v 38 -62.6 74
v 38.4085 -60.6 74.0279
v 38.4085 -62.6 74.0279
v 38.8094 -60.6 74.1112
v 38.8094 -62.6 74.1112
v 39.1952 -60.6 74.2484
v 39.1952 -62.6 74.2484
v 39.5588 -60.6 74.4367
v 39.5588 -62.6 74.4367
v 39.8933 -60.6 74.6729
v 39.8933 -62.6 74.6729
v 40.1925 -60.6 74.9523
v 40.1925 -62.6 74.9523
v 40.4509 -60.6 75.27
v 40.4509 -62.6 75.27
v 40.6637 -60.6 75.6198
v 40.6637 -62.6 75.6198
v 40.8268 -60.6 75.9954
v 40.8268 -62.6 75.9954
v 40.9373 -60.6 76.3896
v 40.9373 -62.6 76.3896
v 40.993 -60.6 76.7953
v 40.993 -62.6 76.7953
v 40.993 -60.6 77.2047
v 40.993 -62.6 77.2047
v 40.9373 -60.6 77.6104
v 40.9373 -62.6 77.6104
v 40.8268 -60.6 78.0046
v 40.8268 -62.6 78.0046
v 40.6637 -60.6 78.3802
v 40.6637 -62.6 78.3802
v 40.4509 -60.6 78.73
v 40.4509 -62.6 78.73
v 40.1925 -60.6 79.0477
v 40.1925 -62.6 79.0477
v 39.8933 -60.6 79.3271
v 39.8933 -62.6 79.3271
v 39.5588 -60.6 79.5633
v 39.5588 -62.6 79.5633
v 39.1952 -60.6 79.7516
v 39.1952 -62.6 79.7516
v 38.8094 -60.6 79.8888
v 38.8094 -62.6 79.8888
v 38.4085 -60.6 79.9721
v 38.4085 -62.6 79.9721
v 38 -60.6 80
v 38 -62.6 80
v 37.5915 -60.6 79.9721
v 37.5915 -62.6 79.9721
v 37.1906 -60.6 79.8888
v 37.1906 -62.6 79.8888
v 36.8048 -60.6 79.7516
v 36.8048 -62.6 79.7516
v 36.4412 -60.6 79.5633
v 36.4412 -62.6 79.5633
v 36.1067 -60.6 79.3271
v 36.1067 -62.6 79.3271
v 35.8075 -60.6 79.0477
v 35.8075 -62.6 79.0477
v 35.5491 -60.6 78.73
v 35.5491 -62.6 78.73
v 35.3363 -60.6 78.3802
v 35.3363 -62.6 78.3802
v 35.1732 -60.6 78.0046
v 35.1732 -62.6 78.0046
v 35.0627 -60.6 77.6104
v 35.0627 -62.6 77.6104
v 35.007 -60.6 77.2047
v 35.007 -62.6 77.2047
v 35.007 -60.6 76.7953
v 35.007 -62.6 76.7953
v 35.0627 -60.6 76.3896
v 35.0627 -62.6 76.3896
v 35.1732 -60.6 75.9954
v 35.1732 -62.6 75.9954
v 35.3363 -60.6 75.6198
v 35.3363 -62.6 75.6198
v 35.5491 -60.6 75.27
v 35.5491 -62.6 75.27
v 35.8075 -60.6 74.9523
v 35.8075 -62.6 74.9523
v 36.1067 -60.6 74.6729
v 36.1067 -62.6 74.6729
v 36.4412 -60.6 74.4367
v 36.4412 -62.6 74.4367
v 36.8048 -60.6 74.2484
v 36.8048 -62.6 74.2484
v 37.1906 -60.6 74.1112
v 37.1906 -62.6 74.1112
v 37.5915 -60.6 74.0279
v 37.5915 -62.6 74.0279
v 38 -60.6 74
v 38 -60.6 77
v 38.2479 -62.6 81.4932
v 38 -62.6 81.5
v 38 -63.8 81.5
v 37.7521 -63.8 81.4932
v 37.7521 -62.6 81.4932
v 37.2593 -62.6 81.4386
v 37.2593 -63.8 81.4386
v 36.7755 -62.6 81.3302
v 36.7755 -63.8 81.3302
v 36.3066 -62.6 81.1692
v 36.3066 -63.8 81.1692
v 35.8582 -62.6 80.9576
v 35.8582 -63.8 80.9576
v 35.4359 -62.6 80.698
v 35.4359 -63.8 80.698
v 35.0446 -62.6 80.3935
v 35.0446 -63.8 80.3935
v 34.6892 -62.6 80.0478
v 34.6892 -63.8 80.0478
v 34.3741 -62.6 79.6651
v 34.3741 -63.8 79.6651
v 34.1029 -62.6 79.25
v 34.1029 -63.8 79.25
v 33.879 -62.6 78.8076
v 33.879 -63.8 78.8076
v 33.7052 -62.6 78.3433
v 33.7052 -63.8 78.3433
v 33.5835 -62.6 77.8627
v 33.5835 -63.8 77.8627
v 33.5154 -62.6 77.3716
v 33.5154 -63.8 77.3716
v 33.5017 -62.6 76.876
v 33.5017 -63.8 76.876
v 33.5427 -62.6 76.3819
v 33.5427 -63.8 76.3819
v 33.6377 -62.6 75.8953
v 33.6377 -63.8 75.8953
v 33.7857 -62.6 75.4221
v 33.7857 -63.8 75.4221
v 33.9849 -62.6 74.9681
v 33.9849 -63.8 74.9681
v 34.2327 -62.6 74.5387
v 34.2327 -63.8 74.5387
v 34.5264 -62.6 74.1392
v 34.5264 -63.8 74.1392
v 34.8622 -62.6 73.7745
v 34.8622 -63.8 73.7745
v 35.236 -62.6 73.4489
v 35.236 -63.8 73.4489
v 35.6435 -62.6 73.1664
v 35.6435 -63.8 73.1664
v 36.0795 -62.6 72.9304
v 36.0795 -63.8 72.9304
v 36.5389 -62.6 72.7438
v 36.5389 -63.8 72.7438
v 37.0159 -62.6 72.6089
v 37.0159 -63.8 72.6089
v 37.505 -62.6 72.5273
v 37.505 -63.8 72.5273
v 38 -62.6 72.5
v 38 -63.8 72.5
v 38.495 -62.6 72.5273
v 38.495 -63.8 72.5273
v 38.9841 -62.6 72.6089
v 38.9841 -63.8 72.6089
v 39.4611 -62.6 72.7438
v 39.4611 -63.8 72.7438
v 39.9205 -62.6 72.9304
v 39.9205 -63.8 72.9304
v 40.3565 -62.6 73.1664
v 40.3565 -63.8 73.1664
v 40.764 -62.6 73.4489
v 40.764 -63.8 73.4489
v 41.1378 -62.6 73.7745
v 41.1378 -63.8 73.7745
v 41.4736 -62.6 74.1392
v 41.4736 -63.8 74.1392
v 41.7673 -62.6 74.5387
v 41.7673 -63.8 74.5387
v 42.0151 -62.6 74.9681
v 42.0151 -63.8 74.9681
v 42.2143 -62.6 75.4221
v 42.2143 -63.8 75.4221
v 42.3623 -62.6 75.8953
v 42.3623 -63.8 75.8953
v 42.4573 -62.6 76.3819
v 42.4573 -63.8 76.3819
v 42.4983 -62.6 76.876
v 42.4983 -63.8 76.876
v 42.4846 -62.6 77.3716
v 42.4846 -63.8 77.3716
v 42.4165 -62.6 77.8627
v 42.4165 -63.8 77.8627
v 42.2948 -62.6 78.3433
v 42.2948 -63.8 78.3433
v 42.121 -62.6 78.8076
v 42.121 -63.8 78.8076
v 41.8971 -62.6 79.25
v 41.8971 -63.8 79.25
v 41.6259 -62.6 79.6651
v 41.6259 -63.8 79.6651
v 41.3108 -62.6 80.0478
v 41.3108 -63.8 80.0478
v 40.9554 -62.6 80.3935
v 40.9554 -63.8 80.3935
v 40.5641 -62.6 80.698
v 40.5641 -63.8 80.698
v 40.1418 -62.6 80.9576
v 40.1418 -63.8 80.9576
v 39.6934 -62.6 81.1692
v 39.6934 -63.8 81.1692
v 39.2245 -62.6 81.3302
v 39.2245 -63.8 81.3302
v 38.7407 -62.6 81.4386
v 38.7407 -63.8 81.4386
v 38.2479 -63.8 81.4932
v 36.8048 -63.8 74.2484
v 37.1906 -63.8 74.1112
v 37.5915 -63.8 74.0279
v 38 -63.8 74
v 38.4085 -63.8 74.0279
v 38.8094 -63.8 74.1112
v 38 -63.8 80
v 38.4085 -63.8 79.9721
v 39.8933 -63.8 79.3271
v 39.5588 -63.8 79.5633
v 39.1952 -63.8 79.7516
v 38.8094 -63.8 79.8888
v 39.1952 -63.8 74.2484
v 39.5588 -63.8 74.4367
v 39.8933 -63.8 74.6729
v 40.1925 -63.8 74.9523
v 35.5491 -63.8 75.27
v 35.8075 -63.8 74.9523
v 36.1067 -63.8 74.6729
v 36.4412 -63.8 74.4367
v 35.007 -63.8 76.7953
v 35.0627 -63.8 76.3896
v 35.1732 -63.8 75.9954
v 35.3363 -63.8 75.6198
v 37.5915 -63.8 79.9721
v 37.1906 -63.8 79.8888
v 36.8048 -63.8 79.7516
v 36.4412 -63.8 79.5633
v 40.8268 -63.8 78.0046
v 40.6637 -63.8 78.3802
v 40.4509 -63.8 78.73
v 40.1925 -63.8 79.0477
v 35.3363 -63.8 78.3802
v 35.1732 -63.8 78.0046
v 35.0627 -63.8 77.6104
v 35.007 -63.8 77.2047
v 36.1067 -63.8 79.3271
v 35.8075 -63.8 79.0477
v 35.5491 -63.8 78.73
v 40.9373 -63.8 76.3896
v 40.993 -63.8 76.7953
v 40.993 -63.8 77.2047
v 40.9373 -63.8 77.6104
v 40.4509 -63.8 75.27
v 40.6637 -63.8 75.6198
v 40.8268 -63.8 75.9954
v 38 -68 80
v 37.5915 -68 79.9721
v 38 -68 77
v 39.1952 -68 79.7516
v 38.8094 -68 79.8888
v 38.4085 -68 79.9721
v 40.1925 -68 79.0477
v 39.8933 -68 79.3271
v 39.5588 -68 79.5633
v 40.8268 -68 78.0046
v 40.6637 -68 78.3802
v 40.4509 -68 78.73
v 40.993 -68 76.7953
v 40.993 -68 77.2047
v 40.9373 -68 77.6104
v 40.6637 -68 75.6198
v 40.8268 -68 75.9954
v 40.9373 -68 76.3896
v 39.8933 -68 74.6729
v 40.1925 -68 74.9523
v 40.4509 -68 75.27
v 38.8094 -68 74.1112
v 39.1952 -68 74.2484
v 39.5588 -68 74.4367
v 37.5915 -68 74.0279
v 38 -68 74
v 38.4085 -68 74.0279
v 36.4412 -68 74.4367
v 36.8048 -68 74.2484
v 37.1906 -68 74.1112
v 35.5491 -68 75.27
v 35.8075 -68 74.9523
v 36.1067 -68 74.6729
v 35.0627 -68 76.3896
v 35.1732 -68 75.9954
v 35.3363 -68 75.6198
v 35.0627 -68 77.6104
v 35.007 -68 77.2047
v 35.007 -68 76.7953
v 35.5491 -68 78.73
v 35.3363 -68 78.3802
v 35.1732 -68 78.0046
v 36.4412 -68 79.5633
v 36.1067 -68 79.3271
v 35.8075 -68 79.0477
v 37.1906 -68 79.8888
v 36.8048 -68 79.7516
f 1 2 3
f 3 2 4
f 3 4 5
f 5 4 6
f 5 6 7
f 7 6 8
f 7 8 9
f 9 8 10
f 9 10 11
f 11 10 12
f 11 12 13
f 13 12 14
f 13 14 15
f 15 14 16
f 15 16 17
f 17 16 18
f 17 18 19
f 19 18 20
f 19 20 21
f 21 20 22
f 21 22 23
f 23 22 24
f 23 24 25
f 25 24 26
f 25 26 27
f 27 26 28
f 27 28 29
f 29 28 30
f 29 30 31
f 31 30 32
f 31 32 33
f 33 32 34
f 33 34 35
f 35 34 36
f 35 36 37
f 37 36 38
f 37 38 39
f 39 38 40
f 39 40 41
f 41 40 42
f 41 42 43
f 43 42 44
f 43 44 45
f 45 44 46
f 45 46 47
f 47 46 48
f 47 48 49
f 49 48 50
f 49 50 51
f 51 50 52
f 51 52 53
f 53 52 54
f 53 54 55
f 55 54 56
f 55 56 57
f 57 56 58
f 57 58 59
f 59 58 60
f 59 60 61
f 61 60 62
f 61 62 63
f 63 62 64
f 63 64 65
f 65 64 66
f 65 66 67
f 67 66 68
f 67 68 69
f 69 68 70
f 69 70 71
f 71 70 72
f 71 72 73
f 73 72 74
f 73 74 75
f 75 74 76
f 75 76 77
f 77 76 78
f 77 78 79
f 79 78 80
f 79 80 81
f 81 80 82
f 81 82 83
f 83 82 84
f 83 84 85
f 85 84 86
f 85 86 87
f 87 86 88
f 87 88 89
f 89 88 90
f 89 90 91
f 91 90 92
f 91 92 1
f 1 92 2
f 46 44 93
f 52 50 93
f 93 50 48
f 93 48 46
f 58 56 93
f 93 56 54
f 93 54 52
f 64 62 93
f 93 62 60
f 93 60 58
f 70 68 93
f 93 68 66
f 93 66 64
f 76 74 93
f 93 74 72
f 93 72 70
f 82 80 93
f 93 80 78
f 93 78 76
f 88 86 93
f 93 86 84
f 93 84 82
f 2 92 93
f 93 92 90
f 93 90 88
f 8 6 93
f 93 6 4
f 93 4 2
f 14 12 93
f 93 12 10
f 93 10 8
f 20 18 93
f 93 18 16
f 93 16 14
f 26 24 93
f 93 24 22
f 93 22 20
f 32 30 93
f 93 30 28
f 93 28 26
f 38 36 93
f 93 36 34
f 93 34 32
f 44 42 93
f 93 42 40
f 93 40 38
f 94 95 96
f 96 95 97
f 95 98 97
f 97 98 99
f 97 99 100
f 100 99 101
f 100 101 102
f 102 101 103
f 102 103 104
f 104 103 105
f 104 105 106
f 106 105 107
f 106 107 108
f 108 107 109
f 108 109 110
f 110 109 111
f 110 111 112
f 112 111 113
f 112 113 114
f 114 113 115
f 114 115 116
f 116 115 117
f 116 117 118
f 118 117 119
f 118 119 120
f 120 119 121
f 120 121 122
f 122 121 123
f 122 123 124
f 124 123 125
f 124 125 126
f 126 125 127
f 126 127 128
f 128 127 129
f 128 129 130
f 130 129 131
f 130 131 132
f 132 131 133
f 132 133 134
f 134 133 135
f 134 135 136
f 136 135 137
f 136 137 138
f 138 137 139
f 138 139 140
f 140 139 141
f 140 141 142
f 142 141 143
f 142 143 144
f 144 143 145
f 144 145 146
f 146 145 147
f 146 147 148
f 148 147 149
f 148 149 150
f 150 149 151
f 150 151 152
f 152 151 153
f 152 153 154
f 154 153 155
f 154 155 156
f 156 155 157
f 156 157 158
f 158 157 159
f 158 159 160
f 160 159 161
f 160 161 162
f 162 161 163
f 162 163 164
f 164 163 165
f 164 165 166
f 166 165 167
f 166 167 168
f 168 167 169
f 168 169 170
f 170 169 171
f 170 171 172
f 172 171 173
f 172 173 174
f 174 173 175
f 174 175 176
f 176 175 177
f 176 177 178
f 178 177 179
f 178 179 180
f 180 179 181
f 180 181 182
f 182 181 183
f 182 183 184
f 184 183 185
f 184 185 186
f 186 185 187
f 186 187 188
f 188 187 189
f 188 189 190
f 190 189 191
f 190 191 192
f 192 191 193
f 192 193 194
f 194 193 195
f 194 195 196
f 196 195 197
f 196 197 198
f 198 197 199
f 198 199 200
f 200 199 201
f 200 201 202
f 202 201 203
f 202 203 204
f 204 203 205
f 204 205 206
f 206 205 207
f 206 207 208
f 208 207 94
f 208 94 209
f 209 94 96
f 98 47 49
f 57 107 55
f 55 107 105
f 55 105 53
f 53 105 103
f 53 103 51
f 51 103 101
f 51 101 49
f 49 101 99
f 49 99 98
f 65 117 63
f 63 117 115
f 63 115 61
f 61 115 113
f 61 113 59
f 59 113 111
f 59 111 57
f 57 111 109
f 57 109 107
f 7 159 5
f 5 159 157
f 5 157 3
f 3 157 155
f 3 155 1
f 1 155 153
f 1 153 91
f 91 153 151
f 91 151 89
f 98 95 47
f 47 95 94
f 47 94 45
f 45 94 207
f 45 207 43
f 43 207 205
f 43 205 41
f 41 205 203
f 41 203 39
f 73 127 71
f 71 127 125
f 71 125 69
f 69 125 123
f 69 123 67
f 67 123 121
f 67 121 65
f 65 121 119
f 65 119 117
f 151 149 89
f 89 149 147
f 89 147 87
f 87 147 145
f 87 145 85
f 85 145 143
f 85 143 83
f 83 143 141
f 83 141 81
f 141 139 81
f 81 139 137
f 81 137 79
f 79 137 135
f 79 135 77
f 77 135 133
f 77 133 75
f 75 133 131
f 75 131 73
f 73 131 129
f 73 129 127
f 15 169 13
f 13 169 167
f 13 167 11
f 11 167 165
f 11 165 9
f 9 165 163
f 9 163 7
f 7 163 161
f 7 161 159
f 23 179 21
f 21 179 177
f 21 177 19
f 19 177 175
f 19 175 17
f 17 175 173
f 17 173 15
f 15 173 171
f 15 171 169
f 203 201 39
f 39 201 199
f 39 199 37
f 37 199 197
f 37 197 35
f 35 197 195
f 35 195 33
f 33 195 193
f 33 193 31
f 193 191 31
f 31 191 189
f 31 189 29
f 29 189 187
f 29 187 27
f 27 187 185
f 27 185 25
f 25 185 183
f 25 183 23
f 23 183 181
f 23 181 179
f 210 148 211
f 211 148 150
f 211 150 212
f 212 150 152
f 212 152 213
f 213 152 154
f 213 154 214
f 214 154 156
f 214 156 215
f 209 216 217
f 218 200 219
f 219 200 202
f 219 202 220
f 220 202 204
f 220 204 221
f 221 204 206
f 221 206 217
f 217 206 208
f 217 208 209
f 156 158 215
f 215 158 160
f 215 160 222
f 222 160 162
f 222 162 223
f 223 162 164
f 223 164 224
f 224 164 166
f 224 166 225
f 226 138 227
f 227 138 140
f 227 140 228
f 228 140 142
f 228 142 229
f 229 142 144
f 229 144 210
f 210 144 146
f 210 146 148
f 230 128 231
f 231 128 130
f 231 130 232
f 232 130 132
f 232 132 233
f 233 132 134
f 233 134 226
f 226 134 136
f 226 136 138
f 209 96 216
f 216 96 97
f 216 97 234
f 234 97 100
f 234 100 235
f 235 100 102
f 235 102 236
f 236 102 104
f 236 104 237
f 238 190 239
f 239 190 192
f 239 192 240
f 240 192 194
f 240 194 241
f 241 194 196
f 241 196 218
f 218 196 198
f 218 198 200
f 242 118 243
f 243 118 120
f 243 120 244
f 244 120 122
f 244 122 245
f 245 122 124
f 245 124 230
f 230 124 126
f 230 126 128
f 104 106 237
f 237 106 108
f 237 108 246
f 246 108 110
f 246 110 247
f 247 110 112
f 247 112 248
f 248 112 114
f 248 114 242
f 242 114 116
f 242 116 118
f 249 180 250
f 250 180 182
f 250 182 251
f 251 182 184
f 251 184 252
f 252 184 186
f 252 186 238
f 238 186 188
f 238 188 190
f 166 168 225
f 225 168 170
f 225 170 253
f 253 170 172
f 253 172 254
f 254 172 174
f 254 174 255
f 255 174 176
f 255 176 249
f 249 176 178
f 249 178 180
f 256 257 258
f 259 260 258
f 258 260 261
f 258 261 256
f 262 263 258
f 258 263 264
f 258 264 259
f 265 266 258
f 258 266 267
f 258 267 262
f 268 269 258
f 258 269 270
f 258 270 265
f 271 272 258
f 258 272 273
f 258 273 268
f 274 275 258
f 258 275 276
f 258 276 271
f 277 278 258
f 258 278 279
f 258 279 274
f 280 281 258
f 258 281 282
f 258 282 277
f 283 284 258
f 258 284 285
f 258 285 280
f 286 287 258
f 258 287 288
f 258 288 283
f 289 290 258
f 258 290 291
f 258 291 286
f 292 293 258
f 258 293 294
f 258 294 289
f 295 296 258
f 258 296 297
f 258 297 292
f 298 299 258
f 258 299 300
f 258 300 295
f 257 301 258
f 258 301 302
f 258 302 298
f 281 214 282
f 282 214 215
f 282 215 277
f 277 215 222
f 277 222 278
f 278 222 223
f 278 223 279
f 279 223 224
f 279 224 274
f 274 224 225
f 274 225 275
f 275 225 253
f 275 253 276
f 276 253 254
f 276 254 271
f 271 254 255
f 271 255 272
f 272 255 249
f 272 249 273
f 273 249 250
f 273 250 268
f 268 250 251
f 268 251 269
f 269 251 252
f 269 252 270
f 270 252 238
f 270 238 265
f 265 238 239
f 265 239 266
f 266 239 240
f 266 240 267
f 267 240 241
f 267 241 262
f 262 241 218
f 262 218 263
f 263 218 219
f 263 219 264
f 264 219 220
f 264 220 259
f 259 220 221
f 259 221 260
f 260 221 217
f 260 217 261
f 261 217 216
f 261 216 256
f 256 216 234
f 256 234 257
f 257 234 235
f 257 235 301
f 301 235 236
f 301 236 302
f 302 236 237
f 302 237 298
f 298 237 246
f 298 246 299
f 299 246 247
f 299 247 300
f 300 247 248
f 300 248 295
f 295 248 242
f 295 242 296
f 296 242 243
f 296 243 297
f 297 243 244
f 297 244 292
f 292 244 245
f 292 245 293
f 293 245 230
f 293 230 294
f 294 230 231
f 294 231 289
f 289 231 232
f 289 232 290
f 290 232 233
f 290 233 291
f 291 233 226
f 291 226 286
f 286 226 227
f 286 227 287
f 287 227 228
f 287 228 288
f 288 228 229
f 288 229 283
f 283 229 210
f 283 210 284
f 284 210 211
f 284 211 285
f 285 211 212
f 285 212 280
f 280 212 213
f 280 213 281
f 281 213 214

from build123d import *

# Parameters (mm, degrees)
SKETCH_1_R               = 3
PLUNGER_1_DEPTH          = 7.4
SKETCH_2_R               = 4.5
RETENTION_FLANGE_2_DEPTH = 1.2


with BuildPart() as part:
    # Эскиз1 → Plunger_1 (new body)
    with BuildSketch(Plane(origin=(0, -68, 0), x_dir=(1, 0, 0), z_dir=(0, 1, 0))):
        with Locations(Location((38, -77, 0), (0, 0, 270))):
            Circle(SKETCH_1_R)
    extrude(amount=PLUNGER_1_DEPTH)

    # Эскиз2 → Retention_flange_2 (add)
    with BuildSketch(Plane(origin=(0, -63.8, 0), x_dir=(1, 0, 0), z_dir=(0, 1, 0))):
        with Locations(Location((38, -77, 0), (0, 0, 270))):
            Circle(SKETCH_2_R)
    extrude(amount=RETENTION_FLANGE_2_DEPTH)


solid = part.part
